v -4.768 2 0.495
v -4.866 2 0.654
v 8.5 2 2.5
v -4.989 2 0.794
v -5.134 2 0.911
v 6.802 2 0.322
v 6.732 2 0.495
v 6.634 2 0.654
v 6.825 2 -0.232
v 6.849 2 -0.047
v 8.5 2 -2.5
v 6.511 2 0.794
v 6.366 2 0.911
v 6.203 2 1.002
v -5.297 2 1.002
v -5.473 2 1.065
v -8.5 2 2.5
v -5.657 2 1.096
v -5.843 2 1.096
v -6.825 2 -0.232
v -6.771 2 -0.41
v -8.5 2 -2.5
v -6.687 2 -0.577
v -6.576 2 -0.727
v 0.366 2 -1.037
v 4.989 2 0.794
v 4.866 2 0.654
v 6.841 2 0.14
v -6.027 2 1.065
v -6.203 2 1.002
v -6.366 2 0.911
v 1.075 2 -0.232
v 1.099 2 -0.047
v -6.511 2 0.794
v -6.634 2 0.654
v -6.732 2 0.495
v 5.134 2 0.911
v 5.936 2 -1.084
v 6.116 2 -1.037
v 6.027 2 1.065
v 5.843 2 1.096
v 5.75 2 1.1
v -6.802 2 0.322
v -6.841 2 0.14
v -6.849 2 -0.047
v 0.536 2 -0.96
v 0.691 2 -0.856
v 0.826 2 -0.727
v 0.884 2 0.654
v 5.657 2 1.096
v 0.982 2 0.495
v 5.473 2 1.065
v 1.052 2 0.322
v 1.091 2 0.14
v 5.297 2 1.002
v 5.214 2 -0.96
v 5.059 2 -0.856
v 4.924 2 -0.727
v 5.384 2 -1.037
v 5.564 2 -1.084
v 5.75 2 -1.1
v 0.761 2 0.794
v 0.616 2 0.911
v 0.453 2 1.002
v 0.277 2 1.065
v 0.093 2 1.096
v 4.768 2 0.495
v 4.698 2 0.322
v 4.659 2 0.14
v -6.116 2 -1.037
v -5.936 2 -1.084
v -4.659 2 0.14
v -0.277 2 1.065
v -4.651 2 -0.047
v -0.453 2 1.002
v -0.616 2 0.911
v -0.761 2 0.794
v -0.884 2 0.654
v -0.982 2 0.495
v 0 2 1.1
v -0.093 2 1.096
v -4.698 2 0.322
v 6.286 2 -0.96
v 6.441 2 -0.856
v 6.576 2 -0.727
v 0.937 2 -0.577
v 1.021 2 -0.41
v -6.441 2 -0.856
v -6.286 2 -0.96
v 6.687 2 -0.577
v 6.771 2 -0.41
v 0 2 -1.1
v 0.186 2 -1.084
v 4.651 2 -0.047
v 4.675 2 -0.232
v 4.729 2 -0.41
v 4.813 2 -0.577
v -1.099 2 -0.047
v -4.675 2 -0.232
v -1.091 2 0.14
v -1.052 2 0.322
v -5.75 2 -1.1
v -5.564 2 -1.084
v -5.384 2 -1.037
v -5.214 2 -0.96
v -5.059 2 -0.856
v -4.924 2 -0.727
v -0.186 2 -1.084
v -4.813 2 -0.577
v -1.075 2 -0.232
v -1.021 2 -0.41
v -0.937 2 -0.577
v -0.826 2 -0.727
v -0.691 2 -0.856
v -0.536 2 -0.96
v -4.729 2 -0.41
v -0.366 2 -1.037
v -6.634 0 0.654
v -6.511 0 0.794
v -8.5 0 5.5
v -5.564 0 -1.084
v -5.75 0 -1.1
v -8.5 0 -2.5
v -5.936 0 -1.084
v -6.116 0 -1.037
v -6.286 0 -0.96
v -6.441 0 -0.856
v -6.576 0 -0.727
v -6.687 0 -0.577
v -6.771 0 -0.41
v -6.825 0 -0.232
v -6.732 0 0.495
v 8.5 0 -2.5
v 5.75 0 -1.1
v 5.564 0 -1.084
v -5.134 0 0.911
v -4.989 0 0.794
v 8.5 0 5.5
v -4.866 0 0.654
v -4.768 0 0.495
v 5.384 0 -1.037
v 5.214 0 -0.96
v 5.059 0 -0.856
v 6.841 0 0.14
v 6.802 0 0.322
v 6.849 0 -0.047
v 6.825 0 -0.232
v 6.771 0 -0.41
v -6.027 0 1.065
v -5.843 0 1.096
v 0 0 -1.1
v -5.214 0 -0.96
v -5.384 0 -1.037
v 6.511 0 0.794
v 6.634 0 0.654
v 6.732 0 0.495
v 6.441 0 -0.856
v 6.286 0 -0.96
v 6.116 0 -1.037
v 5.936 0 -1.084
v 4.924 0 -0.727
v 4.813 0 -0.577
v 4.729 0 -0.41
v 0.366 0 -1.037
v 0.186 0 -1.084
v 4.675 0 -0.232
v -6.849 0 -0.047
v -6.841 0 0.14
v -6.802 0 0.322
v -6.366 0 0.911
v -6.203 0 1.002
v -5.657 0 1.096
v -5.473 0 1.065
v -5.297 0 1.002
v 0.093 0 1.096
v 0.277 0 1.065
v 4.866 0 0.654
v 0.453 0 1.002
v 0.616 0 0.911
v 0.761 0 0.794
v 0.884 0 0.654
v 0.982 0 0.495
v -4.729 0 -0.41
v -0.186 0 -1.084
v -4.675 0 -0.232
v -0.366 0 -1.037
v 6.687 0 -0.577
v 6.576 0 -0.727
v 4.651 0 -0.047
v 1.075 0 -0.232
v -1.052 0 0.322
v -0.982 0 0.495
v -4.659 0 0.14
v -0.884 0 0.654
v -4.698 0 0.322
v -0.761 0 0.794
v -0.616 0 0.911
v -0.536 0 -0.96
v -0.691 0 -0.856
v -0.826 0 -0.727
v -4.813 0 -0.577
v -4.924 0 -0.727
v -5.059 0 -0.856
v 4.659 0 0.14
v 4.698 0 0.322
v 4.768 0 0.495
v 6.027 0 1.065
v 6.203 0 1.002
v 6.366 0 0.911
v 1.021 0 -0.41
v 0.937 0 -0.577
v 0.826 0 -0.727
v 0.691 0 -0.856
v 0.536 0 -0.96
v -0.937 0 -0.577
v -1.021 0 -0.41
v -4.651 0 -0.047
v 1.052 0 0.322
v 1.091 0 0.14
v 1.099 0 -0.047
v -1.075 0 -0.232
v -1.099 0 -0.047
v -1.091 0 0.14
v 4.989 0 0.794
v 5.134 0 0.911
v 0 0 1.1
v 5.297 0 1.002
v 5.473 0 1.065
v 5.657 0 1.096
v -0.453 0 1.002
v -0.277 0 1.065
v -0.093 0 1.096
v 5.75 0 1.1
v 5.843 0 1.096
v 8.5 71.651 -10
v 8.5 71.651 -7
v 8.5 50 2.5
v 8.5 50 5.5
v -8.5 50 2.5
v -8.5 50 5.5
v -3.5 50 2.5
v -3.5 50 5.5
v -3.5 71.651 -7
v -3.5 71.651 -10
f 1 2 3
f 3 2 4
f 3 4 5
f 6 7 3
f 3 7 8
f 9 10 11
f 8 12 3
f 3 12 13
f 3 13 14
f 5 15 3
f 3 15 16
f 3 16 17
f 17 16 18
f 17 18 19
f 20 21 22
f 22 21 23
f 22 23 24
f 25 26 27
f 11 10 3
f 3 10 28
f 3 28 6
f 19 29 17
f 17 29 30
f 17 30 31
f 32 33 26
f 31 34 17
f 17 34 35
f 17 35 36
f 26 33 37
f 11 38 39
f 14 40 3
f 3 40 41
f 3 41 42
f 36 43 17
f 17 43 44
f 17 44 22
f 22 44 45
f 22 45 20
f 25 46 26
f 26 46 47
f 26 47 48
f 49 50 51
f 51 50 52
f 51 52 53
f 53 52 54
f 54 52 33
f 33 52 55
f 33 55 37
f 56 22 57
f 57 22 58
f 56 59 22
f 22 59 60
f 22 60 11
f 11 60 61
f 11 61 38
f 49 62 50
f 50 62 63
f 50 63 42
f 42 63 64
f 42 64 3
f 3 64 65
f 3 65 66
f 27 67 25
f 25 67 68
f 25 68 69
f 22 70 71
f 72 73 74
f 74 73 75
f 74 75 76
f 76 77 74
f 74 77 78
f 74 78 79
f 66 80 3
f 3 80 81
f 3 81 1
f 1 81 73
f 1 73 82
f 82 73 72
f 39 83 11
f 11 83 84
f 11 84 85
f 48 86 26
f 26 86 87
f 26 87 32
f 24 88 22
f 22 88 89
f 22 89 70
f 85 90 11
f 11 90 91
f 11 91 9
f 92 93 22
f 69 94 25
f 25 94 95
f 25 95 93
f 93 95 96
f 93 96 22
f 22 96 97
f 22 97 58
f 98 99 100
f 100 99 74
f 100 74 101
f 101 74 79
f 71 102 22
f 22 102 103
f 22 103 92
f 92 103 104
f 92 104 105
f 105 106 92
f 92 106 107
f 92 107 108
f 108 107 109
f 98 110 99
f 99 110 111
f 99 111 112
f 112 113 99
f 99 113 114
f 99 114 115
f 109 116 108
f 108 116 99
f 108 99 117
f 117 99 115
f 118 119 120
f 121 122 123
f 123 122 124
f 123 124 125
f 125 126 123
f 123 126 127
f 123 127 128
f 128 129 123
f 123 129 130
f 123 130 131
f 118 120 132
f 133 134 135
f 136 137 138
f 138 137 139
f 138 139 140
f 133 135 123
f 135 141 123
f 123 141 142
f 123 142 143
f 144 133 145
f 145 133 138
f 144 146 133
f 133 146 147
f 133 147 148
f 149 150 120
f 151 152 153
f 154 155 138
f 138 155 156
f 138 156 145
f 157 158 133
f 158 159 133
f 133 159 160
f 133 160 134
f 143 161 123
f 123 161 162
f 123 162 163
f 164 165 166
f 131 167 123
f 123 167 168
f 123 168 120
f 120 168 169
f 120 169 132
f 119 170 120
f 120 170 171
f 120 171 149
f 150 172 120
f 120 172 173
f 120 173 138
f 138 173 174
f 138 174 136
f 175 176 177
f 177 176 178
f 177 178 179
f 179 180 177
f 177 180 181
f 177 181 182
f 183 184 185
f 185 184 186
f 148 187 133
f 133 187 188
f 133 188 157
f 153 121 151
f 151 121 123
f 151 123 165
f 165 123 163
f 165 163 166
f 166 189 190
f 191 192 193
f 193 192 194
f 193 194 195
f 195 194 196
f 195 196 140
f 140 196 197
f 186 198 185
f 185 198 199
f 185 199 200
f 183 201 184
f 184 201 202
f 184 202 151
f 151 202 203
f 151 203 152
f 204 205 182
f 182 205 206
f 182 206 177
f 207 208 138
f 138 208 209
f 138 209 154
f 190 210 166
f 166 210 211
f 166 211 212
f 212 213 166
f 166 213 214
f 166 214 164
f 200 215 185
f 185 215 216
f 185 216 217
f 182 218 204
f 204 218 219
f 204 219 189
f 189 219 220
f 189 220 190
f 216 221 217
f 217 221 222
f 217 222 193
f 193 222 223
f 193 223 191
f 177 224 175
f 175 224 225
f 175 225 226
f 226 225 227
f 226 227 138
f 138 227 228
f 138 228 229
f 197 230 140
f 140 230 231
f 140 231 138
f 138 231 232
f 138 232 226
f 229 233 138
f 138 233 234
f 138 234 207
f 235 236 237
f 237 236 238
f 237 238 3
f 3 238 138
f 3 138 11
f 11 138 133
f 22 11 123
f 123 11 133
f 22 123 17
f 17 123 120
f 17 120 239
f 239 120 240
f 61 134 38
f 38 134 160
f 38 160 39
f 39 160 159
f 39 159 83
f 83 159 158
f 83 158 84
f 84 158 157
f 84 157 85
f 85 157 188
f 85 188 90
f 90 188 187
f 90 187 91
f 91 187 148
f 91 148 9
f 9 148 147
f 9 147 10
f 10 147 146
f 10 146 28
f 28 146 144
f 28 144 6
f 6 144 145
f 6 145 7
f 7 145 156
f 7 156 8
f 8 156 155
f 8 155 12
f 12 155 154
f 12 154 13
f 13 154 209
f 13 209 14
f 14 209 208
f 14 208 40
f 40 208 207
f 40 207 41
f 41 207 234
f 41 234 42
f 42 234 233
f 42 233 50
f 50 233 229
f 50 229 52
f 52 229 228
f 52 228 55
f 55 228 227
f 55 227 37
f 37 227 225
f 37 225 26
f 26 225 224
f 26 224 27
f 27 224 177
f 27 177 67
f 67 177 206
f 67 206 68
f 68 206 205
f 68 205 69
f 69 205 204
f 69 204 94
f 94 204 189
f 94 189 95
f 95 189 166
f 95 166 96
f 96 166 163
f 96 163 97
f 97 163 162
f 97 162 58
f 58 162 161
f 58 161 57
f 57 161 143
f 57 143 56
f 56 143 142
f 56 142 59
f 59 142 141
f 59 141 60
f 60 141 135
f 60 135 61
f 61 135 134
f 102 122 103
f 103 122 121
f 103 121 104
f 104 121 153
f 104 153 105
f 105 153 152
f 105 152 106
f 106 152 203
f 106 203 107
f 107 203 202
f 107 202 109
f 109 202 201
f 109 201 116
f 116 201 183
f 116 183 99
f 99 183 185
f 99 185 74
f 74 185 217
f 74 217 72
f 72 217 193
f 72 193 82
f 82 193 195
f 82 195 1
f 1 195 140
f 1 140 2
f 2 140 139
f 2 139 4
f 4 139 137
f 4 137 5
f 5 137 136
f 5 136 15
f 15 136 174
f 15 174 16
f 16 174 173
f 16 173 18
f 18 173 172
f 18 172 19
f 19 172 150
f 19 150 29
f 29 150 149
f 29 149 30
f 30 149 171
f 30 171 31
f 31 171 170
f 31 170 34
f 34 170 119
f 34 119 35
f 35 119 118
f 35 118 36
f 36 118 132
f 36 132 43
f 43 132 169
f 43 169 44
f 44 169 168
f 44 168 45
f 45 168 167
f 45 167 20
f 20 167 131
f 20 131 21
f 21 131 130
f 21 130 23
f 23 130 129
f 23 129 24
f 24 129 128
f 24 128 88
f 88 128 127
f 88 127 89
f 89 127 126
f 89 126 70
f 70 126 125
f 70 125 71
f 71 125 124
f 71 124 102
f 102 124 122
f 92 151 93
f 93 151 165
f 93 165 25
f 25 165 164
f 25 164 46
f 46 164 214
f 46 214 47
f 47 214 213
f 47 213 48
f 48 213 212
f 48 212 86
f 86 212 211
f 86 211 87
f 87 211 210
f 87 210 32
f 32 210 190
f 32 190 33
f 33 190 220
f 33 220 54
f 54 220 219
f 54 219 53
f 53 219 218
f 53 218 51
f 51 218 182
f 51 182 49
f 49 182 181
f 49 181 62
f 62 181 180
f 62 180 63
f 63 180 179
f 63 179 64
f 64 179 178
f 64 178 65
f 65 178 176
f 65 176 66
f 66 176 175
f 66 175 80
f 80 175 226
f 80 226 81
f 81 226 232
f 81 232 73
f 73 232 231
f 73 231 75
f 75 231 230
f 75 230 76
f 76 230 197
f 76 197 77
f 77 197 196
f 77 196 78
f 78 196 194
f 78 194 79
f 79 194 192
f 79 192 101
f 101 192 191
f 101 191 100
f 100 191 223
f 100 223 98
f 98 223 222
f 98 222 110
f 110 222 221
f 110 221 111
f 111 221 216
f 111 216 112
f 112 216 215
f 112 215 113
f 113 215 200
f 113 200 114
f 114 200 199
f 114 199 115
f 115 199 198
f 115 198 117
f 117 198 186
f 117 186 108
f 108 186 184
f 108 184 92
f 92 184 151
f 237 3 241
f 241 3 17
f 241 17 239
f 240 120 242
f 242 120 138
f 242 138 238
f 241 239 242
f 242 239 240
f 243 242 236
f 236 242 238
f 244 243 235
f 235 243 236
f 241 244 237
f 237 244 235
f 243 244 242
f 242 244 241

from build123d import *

# Parameters (mm, degrees)
SKETCH_1_W      = 17
SKETCH_1_H      = 5
SKETCH_1_R      = 1.1
EXTRUDE_1_DEPTH = 2
SKETCH_2_W      = 17
SKETCH_2_H      = 3
EXTRUDE_2_DEPTH = 50
EXTRUDE_3_DEPTH = 12


with BuildPart() as part:
    # 草图1 → 凸台-拉伸1 (new body)
    with BuildSketch(Plane(origin=(0, 0, 0), x_dir=(1, 0, 0), z_dir=(0, 1, 0))):
        Rectangle(SKETCH_1_W, SKETCH_1_H)
        with Locations(Location((5.75, 0, 0), (0, 0, 270))):
            Circle(SKETCH_1_R, mode=Mode.SUBTRACT)
        with Locations(Location((-5.75, 0, 0), (0, 0, 90))):
            Circle(SKETCH_1_R, mode=Mode.SUBTRACT)
        with Locations(Location((0, 0, 0), (0, 0, 270))):
            Circle(SKETCH_1_R, mode=Mode.SUBTRACT)
    extrude(amount=EXTRUDE_1_DEPTH)

    # 草图2 → 凸台-拉伸2 (add)
    with BuildSketch(Plane(origin=(0, 0, 0), x_dir=(1, 0, 0), z_dir=(0, 1, 0))):
        with Locations((0, -4)):
            Rectangle(SKETCH_2_W, SKETCH_2_H)
    extrude(amount=EXTRUDE_2_DEPTH)

    # 草图3 → 凸台-拉伸3 (add)
    with BuildSketch(Plane(origin=(8.5, 0, 0), x_dir=(0, 0, -1), z_dir=(1, 0, 0))):
        Polygon((-5.5, 50), (7, 71.650635095), (10, 71.650635095), (-2.5, 50), align=None)
    extrude(amount=-EXTRUDE_3_DEPTH)


solid = part.part
